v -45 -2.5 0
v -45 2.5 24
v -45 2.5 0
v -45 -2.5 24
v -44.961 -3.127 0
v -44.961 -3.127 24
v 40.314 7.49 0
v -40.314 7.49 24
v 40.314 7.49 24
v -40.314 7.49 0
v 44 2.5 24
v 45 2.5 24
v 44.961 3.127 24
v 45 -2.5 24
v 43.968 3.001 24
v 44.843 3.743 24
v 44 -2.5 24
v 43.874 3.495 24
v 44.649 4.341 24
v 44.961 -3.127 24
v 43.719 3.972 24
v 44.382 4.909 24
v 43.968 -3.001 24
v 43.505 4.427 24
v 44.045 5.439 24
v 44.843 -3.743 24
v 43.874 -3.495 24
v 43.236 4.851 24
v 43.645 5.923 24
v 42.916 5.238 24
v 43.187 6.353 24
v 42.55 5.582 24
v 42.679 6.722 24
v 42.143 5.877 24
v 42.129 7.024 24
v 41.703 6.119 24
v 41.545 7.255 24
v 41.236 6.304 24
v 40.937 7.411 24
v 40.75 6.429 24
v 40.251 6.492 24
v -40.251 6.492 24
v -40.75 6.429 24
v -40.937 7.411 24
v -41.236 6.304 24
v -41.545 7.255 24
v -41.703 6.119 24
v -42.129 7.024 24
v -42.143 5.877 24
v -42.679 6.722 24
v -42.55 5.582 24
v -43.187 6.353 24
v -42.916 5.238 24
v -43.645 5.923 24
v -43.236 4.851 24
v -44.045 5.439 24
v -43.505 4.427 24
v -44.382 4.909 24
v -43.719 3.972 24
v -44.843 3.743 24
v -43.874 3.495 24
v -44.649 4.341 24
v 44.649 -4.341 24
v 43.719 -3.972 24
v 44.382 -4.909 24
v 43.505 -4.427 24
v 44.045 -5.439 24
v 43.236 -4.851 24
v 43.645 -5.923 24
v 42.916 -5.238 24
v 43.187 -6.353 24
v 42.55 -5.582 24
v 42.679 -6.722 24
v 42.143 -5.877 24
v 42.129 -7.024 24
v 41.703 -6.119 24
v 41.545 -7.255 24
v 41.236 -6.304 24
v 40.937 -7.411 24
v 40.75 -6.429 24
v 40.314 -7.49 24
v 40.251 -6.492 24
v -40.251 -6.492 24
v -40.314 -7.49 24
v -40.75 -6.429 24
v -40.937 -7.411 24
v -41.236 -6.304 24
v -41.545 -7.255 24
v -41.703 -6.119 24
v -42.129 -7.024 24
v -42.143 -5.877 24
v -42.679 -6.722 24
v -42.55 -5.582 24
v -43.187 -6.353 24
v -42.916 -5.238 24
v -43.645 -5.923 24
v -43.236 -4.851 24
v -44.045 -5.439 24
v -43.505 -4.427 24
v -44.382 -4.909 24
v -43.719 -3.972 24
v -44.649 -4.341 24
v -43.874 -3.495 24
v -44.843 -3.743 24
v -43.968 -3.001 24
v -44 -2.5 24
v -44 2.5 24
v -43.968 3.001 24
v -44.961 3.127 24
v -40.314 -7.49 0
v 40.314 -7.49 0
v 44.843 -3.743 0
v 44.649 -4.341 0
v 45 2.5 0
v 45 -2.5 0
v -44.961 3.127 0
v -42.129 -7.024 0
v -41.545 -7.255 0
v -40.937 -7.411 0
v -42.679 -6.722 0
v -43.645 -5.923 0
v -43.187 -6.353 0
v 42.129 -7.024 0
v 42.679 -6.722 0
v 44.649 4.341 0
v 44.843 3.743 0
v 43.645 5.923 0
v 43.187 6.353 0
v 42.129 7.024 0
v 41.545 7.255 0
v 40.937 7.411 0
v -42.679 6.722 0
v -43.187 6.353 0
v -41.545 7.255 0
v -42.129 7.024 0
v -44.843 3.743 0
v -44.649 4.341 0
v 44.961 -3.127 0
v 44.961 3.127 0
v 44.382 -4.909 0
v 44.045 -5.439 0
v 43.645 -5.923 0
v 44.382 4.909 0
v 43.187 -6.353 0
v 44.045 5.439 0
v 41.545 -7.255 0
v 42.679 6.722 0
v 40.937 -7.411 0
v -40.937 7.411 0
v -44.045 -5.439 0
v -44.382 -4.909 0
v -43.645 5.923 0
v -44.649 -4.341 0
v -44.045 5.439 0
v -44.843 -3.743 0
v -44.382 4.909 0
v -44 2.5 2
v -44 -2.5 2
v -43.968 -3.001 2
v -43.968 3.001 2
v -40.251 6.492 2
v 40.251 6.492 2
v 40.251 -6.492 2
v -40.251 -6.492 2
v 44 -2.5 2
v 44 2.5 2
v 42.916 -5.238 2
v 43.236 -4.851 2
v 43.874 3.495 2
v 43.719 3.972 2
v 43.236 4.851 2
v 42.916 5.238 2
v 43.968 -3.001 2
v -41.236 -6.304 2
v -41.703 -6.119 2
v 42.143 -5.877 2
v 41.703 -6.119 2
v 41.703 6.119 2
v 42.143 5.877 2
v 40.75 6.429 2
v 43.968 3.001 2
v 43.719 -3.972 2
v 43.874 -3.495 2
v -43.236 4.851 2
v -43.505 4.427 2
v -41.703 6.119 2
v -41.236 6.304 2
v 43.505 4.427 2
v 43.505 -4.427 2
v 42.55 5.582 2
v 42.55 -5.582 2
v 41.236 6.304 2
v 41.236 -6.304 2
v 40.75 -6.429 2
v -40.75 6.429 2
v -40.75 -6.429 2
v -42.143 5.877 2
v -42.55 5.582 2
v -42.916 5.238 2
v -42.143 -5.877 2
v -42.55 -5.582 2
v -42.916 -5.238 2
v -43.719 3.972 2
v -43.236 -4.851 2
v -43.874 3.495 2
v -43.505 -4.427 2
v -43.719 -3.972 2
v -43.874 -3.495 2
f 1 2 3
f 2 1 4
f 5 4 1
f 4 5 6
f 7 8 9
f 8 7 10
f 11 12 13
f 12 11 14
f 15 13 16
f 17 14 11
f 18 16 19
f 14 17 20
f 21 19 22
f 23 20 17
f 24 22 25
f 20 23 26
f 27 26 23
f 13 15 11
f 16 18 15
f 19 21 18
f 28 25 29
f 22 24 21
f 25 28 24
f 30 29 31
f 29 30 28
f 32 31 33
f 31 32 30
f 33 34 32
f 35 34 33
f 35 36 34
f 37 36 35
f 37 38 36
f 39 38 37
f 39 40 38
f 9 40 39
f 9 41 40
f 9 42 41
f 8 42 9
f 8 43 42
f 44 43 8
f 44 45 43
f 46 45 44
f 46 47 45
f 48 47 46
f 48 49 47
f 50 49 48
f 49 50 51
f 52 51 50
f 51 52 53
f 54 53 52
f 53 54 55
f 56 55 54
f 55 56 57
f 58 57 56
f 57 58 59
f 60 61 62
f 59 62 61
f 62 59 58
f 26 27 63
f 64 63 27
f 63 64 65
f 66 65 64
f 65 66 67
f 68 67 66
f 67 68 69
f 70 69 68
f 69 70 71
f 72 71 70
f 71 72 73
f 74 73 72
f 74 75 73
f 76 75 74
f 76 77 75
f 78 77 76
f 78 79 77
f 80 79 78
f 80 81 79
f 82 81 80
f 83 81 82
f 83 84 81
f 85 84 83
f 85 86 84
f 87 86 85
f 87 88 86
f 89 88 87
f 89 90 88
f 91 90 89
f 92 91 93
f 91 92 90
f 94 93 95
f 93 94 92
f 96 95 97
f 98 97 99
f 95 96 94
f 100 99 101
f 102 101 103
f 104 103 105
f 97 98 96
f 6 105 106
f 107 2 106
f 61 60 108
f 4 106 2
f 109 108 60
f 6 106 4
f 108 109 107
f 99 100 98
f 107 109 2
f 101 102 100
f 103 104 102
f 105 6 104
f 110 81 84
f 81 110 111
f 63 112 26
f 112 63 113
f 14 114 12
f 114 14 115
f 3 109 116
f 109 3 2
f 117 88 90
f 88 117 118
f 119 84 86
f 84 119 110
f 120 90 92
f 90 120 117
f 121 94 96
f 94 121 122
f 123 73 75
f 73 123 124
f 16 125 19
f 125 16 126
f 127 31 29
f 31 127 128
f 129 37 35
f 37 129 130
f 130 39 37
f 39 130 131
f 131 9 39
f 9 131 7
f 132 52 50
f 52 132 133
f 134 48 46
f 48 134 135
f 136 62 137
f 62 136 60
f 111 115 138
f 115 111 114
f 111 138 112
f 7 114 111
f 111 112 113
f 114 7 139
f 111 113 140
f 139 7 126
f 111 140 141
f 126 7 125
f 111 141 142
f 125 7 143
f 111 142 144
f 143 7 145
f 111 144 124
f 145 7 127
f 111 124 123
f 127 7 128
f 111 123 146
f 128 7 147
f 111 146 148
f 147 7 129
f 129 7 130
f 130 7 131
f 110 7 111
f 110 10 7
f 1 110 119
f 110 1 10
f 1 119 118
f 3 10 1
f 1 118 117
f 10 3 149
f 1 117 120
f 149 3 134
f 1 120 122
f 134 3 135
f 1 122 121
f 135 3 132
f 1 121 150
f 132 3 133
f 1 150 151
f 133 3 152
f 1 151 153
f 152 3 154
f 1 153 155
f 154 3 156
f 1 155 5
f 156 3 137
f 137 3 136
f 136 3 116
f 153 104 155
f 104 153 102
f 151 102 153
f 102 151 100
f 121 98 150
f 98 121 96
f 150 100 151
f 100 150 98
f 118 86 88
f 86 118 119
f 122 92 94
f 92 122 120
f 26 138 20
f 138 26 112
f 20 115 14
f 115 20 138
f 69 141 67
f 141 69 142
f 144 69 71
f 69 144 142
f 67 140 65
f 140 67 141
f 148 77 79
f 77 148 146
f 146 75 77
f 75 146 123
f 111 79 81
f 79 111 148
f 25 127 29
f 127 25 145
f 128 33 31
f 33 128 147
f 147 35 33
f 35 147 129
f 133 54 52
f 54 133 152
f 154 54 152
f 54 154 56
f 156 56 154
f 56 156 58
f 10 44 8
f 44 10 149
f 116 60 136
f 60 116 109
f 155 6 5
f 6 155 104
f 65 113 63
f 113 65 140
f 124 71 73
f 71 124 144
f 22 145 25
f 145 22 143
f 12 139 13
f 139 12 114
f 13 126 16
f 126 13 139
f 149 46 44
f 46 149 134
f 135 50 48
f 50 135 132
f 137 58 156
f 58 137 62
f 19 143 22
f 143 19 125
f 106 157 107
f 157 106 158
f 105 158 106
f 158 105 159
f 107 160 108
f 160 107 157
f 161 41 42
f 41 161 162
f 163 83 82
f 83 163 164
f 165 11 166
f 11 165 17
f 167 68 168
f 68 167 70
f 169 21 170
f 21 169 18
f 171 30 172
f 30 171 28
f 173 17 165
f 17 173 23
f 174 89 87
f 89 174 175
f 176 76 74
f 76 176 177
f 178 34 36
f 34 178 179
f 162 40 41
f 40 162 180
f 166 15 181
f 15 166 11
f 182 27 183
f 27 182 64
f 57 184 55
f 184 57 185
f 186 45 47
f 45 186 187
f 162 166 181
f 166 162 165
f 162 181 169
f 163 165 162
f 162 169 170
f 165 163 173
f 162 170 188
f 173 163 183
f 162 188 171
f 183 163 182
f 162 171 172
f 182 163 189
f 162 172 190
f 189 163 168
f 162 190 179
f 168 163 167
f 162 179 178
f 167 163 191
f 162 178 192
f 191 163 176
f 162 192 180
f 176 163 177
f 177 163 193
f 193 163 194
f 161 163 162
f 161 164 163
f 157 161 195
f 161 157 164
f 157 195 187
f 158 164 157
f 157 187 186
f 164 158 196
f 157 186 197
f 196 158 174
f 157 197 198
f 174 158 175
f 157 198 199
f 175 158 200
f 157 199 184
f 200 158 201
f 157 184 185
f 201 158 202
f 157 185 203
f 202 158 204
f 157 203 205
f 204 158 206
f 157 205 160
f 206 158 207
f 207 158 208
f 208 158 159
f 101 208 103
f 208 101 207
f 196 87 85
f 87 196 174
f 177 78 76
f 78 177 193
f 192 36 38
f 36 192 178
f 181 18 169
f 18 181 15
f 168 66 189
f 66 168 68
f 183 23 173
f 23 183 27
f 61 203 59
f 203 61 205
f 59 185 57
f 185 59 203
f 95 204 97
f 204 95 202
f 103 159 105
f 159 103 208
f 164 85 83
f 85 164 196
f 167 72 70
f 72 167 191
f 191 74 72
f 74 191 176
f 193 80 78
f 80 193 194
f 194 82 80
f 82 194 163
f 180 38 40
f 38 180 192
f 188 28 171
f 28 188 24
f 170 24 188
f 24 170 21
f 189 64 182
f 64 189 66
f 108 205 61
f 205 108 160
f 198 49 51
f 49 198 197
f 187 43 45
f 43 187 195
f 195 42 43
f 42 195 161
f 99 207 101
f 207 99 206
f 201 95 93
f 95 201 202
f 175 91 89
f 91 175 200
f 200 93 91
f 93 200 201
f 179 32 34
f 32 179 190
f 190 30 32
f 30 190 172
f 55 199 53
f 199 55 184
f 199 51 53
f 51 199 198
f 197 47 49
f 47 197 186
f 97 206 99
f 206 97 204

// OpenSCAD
$fn = 50;


difference() {
	union() {
		hull() {
			translate(v = [-40.0000000000, 2.5000000000, 0]) {
				cylinder(h = 24, r = 5);
			}
			translate(v = [40.0000000000, 2.5000000000, 0]) {
				cylinder(h = 24, r = 5);
			}
			translate(v = [-40.0000000000, -2.5000000000, 0]) {
				cylinder(h = 24, r = 5);
			}
			translate(v = [40.0000000000, -2.5000000000, 0]) {
				cylinder(h = 24, r = 5);
			}
		}
	}
	union() {
		translate(v = [0, 0, 2]) {
			hull() {
				translate(v = [-40.0000000000, 2.5000000000, 0]) {
					cylinder(h = 22, r = 4);
				}
				translate(v = [40.0000000000, 2.5000000000, 0]) {
					cylinder(h = 22, r = 4);
				}
				translate(v = [-40.0000000000, -2.5000000000, 0]) {
					cylinder(h = 22, r = 4);
				}
				translate(v = [40.0000000000, -2.5000000000, 0]) {
					cylinder(h = 22, r = 4);
				}
			}
		}
	}
}
